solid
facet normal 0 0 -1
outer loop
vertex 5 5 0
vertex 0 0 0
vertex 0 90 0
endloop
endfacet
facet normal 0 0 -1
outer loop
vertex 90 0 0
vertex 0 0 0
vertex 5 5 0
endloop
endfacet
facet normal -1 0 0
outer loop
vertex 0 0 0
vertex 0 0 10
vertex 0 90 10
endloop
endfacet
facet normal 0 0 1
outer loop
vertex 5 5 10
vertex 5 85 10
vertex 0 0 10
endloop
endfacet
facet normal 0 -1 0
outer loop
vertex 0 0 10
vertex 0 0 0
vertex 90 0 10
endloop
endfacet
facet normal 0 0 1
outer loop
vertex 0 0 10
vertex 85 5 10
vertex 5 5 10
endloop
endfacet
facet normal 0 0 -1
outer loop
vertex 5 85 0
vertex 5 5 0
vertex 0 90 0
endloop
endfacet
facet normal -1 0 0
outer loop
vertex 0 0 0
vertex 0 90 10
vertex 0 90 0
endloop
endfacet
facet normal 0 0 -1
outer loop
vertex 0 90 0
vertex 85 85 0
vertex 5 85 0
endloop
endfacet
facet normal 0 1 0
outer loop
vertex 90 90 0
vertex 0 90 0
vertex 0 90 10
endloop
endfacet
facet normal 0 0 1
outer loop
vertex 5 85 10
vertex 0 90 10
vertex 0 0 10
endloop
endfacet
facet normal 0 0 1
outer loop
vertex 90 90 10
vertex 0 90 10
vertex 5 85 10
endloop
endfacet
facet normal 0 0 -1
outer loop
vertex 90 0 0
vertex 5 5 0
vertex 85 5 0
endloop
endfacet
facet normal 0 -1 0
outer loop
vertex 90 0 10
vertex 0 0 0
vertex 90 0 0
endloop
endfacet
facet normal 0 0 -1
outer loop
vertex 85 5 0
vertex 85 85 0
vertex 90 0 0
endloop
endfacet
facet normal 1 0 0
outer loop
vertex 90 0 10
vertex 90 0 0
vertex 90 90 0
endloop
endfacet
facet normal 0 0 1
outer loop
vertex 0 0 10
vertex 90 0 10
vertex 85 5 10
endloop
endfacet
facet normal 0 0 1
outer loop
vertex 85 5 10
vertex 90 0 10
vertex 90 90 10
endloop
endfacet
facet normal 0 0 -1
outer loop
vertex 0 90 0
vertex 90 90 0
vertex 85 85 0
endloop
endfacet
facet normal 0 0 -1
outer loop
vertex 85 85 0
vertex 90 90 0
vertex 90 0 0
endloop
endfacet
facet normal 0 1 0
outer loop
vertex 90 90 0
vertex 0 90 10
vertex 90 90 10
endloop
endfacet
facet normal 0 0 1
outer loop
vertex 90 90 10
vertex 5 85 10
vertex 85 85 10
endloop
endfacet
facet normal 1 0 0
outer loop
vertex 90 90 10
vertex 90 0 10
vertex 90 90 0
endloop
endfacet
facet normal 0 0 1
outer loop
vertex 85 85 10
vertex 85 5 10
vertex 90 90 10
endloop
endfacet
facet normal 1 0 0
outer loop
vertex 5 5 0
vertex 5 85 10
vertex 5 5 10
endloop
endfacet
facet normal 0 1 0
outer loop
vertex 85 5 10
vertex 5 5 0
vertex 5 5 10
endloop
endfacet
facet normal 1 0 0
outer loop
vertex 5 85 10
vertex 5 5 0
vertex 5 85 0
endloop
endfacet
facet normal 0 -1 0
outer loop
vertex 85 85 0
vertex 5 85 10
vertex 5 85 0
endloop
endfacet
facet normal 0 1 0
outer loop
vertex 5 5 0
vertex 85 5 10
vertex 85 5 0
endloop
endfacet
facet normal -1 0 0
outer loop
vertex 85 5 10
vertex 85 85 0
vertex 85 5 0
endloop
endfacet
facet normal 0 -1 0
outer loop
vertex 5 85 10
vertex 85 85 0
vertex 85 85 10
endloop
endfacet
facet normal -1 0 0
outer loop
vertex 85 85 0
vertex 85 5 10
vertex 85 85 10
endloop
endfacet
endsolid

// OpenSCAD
// Frame for city model
// Outer size: 90.0mm x 90.0mm x 10.0mm
// Inner size: 80.0mm x 80.0mm x 10.0mm
// Frame width: 5mm

difference() {
    // Outer block (10mm larger than main model)
    cube([90.0, 90.0, 10.0]);
    
    // Inner cutout (sized to match main model exactly)
    translate([5, 5, 0])
        cube([80.0, 80.0, 10.0]);
}
